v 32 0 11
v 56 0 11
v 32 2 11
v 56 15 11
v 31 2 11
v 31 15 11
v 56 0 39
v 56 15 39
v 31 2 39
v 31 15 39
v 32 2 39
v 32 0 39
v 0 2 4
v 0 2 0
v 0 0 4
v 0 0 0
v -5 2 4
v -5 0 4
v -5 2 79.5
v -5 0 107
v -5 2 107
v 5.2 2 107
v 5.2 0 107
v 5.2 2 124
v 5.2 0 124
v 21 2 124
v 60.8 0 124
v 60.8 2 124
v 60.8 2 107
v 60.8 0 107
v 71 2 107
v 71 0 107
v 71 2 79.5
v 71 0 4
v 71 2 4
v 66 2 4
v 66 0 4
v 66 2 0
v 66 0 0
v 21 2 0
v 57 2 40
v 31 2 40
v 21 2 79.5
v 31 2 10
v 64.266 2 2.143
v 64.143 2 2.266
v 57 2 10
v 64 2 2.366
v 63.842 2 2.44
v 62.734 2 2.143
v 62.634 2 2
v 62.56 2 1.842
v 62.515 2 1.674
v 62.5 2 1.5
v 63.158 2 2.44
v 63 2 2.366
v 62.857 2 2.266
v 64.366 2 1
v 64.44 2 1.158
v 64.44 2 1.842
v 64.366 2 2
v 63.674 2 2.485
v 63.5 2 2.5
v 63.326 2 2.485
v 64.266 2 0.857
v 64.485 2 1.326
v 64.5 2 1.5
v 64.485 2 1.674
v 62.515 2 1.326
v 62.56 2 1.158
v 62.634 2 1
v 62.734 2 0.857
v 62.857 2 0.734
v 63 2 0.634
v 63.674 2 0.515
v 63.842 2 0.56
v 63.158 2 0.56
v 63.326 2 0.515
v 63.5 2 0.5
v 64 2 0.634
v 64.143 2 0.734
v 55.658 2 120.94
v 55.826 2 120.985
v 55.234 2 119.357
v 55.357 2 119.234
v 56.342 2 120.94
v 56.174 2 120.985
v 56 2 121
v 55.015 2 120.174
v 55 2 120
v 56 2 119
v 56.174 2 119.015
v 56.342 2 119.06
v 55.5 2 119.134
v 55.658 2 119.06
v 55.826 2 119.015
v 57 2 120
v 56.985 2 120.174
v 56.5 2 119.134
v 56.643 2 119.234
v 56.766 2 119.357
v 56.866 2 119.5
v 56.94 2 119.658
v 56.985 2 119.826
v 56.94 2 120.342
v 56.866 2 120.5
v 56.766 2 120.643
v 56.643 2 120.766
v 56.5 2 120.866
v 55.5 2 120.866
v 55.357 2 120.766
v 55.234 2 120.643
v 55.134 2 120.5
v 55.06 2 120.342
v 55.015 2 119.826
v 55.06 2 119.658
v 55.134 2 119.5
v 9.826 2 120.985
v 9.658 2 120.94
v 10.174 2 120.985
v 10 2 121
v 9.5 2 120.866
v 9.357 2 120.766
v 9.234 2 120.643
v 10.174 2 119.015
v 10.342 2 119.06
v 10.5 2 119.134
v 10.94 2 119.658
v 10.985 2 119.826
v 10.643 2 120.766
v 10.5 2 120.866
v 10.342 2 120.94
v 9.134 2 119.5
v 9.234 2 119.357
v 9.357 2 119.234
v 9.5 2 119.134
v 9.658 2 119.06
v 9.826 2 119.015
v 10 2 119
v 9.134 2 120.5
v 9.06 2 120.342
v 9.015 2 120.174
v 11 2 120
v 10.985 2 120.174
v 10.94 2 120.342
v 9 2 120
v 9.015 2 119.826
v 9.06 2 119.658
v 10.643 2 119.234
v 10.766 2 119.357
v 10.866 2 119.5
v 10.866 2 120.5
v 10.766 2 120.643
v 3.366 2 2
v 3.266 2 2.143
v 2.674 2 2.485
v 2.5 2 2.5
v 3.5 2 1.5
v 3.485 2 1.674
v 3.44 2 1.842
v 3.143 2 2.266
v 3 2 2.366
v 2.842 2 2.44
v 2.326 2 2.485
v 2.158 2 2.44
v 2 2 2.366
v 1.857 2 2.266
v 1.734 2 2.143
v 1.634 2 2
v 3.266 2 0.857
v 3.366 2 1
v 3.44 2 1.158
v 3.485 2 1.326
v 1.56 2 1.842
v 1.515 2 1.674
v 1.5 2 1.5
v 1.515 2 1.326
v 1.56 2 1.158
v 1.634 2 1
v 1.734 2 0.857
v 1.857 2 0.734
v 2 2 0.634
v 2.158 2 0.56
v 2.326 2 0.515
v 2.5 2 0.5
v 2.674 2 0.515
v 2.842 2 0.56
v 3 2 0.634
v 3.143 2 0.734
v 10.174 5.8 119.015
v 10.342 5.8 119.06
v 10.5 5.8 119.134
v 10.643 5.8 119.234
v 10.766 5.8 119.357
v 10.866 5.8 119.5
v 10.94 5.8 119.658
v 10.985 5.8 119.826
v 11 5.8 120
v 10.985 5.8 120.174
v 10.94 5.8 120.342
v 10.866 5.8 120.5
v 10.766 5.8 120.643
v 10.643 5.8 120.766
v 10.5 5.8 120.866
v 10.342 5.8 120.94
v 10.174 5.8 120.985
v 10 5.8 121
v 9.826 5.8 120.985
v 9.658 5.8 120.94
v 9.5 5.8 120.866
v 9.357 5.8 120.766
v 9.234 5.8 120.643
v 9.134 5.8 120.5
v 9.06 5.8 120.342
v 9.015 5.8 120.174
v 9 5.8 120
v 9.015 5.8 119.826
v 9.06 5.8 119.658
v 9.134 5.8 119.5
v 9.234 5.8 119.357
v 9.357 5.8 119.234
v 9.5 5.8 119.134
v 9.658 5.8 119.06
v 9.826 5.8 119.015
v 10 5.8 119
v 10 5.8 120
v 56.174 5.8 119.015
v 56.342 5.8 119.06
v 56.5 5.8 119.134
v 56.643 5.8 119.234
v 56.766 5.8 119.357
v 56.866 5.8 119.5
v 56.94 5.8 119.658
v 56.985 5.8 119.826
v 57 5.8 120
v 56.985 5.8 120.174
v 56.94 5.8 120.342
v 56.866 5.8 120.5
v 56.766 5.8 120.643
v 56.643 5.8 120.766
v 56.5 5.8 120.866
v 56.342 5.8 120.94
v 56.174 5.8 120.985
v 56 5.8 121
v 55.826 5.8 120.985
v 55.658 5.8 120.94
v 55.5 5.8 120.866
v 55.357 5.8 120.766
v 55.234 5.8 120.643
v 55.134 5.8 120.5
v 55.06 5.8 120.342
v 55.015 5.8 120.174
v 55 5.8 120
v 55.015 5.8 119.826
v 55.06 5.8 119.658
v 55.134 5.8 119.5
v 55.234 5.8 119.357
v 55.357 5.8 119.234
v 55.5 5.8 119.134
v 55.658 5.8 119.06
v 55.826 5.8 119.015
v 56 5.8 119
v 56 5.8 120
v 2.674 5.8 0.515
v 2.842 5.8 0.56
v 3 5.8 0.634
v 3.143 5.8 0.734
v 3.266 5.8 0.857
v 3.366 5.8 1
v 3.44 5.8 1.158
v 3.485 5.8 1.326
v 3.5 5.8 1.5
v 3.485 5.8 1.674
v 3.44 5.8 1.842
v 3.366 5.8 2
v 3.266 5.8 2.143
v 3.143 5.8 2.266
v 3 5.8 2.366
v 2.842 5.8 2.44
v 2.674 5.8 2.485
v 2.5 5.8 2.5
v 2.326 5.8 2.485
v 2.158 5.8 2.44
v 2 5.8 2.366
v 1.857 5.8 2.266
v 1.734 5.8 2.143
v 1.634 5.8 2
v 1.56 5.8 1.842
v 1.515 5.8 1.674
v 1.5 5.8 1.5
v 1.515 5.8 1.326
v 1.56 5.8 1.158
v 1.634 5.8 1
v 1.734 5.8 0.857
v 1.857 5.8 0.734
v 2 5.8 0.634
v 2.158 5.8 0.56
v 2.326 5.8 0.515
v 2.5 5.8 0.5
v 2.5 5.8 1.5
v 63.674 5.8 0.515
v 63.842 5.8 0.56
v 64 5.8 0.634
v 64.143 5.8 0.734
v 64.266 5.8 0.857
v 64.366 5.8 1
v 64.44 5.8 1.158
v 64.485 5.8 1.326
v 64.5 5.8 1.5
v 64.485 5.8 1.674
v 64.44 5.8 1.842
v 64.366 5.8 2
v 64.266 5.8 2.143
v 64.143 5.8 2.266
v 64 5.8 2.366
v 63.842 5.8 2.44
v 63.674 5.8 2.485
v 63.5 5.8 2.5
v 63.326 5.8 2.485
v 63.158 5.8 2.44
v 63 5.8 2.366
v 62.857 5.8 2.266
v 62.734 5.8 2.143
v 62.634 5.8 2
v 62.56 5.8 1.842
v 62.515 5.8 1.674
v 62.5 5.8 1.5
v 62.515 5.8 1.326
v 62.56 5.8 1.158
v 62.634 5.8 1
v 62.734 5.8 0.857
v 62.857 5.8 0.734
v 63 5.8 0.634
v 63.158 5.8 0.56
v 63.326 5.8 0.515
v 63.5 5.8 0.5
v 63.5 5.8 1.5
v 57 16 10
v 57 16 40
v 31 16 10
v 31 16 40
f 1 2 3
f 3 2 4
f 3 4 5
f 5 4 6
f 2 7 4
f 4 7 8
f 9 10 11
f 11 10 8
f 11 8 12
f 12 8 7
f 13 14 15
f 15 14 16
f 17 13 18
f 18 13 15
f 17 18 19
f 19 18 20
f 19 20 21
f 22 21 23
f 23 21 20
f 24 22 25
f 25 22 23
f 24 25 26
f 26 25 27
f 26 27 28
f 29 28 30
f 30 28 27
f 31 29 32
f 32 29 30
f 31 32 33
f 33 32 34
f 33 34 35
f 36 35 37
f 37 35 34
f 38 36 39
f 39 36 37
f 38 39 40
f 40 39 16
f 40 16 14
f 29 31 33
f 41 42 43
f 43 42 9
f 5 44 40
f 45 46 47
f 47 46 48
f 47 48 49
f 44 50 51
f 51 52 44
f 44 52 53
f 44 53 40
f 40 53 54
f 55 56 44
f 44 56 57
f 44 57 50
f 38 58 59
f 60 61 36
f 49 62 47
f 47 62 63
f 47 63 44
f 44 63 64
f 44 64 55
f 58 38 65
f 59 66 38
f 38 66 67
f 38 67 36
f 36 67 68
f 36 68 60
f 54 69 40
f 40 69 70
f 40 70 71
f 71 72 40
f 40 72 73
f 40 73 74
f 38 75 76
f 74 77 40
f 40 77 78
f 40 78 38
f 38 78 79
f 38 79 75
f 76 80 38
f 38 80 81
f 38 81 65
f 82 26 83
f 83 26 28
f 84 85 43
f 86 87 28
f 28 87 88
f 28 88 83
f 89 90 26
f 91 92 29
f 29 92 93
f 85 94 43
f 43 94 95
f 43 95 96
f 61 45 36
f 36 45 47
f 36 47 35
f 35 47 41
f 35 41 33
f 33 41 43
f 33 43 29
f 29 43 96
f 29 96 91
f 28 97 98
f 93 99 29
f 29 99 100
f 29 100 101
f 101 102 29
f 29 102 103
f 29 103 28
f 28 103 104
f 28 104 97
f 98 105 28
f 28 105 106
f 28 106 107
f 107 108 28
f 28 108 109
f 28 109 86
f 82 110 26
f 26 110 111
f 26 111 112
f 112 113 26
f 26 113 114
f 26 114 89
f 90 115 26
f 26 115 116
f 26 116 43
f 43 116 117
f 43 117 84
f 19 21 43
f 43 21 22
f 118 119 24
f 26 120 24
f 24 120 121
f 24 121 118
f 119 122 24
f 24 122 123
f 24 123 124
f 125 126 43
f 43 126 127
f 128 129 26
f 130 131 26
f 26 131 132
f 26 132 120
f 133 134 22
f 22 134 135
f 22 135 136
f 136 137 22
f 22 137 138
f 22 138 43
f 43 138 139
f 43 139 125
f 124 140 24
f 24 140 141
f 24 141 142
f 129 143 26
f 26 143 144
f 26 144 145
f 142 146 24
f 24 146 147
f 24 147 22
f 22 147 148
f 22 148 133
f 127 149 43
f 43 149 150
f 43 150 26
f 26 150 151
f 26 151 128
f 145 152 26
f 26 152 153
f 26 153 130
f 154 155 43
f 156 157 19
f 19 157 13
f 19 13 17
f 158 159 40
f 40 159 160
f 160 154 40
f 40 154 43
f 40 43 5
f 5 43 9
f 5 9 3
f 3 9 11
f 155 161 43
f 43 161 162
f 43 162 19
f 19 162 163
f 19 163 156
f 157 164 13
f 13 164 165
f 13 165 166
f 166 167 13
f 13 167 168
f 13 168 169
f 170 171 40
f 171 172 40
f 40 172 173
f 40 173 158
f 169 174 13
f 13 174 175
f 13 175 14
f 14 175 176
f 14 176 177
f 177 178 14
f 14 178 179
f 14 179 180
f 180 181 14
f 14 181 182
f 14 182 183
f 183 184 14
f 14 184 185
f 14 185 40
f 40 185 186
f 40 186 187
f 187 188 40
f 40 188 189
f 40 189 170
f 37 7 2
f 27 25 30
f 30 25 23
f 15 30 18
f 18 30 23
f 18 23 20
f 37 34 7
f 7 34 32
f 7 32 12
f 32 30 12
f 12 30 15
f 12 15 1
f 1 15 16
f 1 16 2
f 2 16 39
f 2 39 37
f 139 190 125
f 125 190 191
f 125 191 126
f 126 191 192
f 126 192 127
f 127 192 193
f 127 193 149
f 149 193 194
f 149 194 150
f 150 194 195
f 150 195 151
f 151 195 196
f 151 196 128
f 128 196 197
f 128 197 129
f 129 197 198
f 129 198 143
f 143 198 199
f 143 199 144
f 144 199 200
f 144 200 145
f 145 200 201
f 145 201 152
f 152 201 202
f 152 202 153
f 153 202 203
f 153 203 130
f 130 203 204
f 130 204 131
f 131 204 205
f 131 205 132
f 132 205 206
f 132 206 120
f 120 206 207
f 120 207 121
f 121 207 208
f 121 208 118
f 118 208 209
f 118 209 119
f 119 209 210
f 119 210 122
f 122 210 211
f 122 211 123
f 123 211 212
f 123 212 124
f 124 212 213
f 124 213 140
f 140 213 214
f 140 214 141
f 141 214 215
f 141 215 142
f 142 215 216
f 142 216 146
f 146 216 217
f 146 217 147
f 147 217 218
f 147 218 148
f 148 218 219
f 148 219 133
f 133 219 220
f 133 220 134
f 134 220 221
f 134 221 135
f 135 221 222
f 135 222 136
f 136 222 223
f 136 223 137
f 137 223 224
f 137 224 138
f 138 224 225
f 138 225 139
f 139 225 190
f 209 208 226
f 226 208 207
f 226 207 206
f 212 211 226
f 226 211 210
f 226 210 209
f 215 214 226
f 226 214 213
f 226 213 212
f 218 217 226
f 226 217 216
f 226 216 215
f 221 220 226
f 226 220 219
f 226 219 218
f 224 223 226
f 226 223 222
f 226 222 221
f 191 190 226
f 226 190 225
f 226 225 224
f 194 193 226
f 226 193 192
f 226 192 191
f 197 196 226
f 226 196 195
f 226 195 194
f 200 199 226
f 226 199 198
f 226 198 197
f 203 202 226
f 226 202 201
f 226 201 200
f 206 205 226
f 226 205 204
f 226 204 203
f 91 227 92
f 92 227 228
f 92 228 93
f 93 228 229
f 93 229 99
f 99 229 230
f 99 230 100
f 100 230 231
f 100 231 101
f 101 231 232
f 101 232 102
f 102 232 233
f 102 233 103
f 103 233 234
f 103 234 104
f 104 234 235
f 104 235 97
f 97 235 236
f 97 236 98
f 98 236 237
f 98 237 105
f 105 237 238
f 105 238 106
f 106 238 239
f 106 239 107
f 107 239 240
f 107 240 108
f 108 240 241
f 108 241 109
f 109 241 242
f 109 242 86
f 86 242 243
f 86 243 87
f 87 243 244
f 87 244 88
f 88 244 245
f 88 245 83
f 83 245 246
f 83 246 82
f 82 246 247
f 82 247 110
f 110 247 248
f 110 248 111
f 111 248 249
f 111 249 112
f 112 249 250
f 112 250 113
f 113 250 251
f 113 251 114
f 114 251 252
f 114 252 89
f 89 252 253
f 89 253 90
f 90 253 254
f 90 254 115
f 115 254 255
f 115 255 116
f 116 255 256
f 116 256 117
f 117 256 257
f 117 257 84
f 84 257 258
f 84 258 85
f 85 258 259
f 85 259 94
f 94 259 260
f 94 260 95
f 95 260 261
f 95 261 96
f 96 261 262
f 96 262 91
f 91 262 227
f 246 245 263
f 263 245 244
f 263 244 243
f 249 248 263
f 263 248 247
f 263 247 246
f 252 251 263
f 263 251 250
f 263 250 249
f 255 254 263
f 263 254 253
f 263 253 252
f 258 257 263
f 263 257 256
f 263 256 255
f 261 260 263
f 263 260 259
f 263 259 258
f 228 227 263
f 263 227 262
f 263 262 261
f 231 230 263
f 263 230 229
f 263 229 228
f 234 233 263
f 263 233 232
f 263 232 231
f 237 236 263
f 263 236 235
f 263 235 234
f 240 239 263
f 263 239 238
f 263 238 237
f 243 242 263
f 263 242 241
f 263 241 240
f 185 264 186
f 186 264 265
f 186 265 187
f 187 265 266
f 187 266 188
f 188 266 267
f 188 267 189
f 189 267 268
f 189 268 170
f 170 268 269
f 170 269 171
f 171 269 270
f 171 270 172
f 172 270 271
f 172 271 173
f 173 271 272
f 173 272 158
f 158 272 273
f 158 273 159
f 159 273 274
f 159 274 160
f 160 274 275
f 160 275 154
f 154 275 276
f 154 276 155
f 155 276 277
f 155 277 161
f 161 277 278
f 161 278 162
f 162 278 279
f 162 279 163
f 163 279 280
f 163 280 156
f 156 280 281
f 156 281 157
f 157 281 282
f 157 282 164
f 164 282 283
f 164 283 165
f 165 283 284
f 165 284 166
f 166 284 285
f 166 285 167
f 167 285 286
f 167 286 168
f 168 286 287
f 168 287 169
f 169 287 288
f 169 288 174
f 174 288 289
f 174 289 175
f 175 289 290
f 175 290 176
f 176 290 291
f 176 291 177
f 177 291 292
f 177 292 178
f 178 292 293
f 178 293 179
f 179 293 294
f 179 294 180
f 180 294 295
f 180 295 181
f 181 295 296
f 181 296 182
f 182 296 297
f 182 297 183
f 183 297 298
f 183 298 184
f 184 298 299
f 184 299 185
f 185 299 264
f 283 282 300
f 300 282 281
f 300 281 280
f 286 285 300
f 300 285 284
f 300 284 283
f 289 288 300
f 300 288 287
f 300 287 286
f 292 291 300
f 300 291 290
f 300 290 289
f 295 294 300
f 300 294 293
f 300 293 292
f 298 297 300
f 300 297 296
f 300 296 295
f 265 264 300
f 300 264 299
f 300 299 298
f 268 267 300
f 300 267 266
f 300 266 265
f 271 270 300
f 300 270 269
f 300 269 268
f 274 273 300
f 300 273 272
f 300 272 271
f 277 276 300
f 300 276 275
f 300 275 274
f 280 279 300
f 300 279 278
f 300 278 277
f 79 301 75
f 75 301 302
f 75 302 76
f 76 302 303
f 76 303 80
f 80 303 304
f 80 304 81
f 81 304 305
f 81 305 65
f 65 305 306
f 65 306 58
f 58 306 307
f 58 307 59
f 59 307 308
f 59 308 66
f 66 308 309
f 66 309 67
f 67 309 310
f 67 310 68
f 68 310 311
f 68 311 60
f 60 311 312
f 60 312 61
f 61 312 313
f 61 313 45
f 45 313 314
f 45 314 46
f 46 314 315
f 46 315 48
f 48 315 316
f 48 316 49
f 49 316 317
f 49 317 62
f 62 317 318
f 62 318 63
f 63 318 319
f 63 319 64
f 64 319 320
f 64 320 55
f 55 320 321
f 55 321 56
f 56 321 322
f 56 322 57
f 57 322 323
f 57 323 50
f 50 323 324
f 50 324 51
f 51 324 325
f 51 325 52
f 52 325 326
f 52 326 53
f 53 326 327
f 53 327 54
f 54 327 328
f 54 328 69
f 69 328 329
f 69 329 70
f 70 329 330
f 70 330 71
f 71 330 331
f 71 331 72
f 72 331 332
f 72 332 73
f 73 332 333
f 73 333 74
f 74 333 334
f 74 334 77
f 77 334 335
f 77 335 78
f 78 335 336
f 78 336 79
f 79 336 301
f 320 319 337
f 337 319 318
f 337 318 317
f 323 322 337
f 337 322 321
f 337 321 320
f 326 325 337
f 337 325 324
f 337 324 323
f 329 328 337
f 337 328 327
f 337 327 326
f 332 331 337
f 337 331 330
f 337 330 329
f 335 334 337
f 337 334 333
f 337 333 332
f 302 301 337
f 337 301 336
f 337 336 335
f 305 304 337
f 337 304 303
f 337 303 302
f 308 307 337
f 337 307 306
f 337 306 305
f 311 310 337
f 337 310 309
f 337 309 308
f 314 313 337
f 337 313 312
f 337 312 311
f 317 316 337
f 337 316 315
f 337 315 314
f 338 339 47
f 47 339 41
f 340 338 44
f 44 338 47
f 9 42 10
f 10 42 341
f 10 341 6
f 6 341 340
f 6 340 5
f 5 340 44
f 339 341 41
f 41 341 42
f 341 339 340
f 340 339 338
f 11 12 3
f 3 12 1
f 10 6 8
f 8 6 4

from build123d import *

# Parameters (mm, degrees)
BOSS_EXTRUDE1_DEPTH = 2
SKETCH2_R           = 1
BOSS_EXTRUDE2_DEPTH = 3.8
SKETCH3_W           = 26
SKETCH3_H           = 30
BOSS_EXTRUDE3_DEPTH = 16
SKETCH4_W           = 24
SKETCH4_H           = 28
CUT_EXTRUDE1_DEPTH  = 26
SKETCH5_W           = 28
SKETCH5_H           = 14
CUT_EXTRUDE2_DEPTH  = 1
SKETCH6_W           = 28
SKETCH6_H           = 1
BOSS_EXTRUDE4_DEPTH = 25


with BuildPart() as part:
    # Sketch1 → Boss-Extrude1 (new body)
    with BuildSketch(Plane(origin=(0, 0, 0), x_dir=(1, 0, 0), z_dir=(0, 1, 0))):
        Polygon((0, 0), (66, 0), (66, -4), (71, -4), (71, -107), (60.8, -107), (60.8, -115), (60.8, -124), (5.2, -124), (5.2, -115), (5.2, -107), (-5, -107), (-5, -4), (0, -4), align=None)
    extrude(amount=BOSS_EXTRUDE1_DEPTH)

    # Sketch2 → Boss-Extrude2 (add)
    with BuildSketch(Plane(origin=(0, 2, 0), x_dir=(1, 0, 0), z_dir=(0, 1, 0))):
        with Locations(Location((10, -120, 0), (0, 0, 90))):
            Circle(SKETCH2_R)
        with Locations(Location((56, -120, 0), (0, 0, 90))):
            Circle(SKETCH2_R)
        with Locations(Location((2.5, -1.5, 0), (0, 0, 90))):
            Circle(SKETCH2_R)
        with Locations(Location((63.5, -1.5, 0), (0, 0, 90))):
            Circle(SKETCH2_R)
    extrude(amount=BOSS_EXTRUDE2_DEPTH)

    # Sketch3 → Boss-Extrude3 (add)
    with BuildSketch(Plane(origin=(0, 0, 0), x_dir=(-1, 0, 0), z_dir=(0, -1, 0))):
        with Locations((-44, -25)):
            Rectangle(SKETCH3_W, SKETCH3_H)
    extrude(amount=-BOSS_EXTRUDE3_DEPTH)

    # Sketch4 → Cut-Extrude1 (cut)
    with BuildSketch(Plane(origin=(0, 16, 0), x_dir=(1, 0, 0), z_dir=(0, 1, 0))):
        with Locations((44, -25)):
            Rectangle(SKETCH4_W, SKETCH4_H)
    extrude(amount=-CUT_EXTRUDE1_DEPTH, mode=Mode.SUBTRACT)

    # Sketch5 → Cut-Extrude2 (cut)
    with BuildSketch(Plane(origin=(32, 0, 0), x_dir=(0, 0, -1), z_dir=(1, 0, 0))):
        with Locations((-25, 9)):
            Rectangle(SKETCH5_W, SKETCH5_H)
    extrude(amount=-CUT_EXTRUDE2_DEPTH, mode=Mode.SUBTRACT)

    # Sketch6 → Boss-Extrude4 (add)
    with BuildSketch(Plane.ZY.offset(-56)):
        with Locations((25, 15.5)):
            Rectangle(SKETCH6_W, SKETCH6_H)
    extrude(amount=BOSS_EXTRUDE4_DEPTH)


solid = part.part
